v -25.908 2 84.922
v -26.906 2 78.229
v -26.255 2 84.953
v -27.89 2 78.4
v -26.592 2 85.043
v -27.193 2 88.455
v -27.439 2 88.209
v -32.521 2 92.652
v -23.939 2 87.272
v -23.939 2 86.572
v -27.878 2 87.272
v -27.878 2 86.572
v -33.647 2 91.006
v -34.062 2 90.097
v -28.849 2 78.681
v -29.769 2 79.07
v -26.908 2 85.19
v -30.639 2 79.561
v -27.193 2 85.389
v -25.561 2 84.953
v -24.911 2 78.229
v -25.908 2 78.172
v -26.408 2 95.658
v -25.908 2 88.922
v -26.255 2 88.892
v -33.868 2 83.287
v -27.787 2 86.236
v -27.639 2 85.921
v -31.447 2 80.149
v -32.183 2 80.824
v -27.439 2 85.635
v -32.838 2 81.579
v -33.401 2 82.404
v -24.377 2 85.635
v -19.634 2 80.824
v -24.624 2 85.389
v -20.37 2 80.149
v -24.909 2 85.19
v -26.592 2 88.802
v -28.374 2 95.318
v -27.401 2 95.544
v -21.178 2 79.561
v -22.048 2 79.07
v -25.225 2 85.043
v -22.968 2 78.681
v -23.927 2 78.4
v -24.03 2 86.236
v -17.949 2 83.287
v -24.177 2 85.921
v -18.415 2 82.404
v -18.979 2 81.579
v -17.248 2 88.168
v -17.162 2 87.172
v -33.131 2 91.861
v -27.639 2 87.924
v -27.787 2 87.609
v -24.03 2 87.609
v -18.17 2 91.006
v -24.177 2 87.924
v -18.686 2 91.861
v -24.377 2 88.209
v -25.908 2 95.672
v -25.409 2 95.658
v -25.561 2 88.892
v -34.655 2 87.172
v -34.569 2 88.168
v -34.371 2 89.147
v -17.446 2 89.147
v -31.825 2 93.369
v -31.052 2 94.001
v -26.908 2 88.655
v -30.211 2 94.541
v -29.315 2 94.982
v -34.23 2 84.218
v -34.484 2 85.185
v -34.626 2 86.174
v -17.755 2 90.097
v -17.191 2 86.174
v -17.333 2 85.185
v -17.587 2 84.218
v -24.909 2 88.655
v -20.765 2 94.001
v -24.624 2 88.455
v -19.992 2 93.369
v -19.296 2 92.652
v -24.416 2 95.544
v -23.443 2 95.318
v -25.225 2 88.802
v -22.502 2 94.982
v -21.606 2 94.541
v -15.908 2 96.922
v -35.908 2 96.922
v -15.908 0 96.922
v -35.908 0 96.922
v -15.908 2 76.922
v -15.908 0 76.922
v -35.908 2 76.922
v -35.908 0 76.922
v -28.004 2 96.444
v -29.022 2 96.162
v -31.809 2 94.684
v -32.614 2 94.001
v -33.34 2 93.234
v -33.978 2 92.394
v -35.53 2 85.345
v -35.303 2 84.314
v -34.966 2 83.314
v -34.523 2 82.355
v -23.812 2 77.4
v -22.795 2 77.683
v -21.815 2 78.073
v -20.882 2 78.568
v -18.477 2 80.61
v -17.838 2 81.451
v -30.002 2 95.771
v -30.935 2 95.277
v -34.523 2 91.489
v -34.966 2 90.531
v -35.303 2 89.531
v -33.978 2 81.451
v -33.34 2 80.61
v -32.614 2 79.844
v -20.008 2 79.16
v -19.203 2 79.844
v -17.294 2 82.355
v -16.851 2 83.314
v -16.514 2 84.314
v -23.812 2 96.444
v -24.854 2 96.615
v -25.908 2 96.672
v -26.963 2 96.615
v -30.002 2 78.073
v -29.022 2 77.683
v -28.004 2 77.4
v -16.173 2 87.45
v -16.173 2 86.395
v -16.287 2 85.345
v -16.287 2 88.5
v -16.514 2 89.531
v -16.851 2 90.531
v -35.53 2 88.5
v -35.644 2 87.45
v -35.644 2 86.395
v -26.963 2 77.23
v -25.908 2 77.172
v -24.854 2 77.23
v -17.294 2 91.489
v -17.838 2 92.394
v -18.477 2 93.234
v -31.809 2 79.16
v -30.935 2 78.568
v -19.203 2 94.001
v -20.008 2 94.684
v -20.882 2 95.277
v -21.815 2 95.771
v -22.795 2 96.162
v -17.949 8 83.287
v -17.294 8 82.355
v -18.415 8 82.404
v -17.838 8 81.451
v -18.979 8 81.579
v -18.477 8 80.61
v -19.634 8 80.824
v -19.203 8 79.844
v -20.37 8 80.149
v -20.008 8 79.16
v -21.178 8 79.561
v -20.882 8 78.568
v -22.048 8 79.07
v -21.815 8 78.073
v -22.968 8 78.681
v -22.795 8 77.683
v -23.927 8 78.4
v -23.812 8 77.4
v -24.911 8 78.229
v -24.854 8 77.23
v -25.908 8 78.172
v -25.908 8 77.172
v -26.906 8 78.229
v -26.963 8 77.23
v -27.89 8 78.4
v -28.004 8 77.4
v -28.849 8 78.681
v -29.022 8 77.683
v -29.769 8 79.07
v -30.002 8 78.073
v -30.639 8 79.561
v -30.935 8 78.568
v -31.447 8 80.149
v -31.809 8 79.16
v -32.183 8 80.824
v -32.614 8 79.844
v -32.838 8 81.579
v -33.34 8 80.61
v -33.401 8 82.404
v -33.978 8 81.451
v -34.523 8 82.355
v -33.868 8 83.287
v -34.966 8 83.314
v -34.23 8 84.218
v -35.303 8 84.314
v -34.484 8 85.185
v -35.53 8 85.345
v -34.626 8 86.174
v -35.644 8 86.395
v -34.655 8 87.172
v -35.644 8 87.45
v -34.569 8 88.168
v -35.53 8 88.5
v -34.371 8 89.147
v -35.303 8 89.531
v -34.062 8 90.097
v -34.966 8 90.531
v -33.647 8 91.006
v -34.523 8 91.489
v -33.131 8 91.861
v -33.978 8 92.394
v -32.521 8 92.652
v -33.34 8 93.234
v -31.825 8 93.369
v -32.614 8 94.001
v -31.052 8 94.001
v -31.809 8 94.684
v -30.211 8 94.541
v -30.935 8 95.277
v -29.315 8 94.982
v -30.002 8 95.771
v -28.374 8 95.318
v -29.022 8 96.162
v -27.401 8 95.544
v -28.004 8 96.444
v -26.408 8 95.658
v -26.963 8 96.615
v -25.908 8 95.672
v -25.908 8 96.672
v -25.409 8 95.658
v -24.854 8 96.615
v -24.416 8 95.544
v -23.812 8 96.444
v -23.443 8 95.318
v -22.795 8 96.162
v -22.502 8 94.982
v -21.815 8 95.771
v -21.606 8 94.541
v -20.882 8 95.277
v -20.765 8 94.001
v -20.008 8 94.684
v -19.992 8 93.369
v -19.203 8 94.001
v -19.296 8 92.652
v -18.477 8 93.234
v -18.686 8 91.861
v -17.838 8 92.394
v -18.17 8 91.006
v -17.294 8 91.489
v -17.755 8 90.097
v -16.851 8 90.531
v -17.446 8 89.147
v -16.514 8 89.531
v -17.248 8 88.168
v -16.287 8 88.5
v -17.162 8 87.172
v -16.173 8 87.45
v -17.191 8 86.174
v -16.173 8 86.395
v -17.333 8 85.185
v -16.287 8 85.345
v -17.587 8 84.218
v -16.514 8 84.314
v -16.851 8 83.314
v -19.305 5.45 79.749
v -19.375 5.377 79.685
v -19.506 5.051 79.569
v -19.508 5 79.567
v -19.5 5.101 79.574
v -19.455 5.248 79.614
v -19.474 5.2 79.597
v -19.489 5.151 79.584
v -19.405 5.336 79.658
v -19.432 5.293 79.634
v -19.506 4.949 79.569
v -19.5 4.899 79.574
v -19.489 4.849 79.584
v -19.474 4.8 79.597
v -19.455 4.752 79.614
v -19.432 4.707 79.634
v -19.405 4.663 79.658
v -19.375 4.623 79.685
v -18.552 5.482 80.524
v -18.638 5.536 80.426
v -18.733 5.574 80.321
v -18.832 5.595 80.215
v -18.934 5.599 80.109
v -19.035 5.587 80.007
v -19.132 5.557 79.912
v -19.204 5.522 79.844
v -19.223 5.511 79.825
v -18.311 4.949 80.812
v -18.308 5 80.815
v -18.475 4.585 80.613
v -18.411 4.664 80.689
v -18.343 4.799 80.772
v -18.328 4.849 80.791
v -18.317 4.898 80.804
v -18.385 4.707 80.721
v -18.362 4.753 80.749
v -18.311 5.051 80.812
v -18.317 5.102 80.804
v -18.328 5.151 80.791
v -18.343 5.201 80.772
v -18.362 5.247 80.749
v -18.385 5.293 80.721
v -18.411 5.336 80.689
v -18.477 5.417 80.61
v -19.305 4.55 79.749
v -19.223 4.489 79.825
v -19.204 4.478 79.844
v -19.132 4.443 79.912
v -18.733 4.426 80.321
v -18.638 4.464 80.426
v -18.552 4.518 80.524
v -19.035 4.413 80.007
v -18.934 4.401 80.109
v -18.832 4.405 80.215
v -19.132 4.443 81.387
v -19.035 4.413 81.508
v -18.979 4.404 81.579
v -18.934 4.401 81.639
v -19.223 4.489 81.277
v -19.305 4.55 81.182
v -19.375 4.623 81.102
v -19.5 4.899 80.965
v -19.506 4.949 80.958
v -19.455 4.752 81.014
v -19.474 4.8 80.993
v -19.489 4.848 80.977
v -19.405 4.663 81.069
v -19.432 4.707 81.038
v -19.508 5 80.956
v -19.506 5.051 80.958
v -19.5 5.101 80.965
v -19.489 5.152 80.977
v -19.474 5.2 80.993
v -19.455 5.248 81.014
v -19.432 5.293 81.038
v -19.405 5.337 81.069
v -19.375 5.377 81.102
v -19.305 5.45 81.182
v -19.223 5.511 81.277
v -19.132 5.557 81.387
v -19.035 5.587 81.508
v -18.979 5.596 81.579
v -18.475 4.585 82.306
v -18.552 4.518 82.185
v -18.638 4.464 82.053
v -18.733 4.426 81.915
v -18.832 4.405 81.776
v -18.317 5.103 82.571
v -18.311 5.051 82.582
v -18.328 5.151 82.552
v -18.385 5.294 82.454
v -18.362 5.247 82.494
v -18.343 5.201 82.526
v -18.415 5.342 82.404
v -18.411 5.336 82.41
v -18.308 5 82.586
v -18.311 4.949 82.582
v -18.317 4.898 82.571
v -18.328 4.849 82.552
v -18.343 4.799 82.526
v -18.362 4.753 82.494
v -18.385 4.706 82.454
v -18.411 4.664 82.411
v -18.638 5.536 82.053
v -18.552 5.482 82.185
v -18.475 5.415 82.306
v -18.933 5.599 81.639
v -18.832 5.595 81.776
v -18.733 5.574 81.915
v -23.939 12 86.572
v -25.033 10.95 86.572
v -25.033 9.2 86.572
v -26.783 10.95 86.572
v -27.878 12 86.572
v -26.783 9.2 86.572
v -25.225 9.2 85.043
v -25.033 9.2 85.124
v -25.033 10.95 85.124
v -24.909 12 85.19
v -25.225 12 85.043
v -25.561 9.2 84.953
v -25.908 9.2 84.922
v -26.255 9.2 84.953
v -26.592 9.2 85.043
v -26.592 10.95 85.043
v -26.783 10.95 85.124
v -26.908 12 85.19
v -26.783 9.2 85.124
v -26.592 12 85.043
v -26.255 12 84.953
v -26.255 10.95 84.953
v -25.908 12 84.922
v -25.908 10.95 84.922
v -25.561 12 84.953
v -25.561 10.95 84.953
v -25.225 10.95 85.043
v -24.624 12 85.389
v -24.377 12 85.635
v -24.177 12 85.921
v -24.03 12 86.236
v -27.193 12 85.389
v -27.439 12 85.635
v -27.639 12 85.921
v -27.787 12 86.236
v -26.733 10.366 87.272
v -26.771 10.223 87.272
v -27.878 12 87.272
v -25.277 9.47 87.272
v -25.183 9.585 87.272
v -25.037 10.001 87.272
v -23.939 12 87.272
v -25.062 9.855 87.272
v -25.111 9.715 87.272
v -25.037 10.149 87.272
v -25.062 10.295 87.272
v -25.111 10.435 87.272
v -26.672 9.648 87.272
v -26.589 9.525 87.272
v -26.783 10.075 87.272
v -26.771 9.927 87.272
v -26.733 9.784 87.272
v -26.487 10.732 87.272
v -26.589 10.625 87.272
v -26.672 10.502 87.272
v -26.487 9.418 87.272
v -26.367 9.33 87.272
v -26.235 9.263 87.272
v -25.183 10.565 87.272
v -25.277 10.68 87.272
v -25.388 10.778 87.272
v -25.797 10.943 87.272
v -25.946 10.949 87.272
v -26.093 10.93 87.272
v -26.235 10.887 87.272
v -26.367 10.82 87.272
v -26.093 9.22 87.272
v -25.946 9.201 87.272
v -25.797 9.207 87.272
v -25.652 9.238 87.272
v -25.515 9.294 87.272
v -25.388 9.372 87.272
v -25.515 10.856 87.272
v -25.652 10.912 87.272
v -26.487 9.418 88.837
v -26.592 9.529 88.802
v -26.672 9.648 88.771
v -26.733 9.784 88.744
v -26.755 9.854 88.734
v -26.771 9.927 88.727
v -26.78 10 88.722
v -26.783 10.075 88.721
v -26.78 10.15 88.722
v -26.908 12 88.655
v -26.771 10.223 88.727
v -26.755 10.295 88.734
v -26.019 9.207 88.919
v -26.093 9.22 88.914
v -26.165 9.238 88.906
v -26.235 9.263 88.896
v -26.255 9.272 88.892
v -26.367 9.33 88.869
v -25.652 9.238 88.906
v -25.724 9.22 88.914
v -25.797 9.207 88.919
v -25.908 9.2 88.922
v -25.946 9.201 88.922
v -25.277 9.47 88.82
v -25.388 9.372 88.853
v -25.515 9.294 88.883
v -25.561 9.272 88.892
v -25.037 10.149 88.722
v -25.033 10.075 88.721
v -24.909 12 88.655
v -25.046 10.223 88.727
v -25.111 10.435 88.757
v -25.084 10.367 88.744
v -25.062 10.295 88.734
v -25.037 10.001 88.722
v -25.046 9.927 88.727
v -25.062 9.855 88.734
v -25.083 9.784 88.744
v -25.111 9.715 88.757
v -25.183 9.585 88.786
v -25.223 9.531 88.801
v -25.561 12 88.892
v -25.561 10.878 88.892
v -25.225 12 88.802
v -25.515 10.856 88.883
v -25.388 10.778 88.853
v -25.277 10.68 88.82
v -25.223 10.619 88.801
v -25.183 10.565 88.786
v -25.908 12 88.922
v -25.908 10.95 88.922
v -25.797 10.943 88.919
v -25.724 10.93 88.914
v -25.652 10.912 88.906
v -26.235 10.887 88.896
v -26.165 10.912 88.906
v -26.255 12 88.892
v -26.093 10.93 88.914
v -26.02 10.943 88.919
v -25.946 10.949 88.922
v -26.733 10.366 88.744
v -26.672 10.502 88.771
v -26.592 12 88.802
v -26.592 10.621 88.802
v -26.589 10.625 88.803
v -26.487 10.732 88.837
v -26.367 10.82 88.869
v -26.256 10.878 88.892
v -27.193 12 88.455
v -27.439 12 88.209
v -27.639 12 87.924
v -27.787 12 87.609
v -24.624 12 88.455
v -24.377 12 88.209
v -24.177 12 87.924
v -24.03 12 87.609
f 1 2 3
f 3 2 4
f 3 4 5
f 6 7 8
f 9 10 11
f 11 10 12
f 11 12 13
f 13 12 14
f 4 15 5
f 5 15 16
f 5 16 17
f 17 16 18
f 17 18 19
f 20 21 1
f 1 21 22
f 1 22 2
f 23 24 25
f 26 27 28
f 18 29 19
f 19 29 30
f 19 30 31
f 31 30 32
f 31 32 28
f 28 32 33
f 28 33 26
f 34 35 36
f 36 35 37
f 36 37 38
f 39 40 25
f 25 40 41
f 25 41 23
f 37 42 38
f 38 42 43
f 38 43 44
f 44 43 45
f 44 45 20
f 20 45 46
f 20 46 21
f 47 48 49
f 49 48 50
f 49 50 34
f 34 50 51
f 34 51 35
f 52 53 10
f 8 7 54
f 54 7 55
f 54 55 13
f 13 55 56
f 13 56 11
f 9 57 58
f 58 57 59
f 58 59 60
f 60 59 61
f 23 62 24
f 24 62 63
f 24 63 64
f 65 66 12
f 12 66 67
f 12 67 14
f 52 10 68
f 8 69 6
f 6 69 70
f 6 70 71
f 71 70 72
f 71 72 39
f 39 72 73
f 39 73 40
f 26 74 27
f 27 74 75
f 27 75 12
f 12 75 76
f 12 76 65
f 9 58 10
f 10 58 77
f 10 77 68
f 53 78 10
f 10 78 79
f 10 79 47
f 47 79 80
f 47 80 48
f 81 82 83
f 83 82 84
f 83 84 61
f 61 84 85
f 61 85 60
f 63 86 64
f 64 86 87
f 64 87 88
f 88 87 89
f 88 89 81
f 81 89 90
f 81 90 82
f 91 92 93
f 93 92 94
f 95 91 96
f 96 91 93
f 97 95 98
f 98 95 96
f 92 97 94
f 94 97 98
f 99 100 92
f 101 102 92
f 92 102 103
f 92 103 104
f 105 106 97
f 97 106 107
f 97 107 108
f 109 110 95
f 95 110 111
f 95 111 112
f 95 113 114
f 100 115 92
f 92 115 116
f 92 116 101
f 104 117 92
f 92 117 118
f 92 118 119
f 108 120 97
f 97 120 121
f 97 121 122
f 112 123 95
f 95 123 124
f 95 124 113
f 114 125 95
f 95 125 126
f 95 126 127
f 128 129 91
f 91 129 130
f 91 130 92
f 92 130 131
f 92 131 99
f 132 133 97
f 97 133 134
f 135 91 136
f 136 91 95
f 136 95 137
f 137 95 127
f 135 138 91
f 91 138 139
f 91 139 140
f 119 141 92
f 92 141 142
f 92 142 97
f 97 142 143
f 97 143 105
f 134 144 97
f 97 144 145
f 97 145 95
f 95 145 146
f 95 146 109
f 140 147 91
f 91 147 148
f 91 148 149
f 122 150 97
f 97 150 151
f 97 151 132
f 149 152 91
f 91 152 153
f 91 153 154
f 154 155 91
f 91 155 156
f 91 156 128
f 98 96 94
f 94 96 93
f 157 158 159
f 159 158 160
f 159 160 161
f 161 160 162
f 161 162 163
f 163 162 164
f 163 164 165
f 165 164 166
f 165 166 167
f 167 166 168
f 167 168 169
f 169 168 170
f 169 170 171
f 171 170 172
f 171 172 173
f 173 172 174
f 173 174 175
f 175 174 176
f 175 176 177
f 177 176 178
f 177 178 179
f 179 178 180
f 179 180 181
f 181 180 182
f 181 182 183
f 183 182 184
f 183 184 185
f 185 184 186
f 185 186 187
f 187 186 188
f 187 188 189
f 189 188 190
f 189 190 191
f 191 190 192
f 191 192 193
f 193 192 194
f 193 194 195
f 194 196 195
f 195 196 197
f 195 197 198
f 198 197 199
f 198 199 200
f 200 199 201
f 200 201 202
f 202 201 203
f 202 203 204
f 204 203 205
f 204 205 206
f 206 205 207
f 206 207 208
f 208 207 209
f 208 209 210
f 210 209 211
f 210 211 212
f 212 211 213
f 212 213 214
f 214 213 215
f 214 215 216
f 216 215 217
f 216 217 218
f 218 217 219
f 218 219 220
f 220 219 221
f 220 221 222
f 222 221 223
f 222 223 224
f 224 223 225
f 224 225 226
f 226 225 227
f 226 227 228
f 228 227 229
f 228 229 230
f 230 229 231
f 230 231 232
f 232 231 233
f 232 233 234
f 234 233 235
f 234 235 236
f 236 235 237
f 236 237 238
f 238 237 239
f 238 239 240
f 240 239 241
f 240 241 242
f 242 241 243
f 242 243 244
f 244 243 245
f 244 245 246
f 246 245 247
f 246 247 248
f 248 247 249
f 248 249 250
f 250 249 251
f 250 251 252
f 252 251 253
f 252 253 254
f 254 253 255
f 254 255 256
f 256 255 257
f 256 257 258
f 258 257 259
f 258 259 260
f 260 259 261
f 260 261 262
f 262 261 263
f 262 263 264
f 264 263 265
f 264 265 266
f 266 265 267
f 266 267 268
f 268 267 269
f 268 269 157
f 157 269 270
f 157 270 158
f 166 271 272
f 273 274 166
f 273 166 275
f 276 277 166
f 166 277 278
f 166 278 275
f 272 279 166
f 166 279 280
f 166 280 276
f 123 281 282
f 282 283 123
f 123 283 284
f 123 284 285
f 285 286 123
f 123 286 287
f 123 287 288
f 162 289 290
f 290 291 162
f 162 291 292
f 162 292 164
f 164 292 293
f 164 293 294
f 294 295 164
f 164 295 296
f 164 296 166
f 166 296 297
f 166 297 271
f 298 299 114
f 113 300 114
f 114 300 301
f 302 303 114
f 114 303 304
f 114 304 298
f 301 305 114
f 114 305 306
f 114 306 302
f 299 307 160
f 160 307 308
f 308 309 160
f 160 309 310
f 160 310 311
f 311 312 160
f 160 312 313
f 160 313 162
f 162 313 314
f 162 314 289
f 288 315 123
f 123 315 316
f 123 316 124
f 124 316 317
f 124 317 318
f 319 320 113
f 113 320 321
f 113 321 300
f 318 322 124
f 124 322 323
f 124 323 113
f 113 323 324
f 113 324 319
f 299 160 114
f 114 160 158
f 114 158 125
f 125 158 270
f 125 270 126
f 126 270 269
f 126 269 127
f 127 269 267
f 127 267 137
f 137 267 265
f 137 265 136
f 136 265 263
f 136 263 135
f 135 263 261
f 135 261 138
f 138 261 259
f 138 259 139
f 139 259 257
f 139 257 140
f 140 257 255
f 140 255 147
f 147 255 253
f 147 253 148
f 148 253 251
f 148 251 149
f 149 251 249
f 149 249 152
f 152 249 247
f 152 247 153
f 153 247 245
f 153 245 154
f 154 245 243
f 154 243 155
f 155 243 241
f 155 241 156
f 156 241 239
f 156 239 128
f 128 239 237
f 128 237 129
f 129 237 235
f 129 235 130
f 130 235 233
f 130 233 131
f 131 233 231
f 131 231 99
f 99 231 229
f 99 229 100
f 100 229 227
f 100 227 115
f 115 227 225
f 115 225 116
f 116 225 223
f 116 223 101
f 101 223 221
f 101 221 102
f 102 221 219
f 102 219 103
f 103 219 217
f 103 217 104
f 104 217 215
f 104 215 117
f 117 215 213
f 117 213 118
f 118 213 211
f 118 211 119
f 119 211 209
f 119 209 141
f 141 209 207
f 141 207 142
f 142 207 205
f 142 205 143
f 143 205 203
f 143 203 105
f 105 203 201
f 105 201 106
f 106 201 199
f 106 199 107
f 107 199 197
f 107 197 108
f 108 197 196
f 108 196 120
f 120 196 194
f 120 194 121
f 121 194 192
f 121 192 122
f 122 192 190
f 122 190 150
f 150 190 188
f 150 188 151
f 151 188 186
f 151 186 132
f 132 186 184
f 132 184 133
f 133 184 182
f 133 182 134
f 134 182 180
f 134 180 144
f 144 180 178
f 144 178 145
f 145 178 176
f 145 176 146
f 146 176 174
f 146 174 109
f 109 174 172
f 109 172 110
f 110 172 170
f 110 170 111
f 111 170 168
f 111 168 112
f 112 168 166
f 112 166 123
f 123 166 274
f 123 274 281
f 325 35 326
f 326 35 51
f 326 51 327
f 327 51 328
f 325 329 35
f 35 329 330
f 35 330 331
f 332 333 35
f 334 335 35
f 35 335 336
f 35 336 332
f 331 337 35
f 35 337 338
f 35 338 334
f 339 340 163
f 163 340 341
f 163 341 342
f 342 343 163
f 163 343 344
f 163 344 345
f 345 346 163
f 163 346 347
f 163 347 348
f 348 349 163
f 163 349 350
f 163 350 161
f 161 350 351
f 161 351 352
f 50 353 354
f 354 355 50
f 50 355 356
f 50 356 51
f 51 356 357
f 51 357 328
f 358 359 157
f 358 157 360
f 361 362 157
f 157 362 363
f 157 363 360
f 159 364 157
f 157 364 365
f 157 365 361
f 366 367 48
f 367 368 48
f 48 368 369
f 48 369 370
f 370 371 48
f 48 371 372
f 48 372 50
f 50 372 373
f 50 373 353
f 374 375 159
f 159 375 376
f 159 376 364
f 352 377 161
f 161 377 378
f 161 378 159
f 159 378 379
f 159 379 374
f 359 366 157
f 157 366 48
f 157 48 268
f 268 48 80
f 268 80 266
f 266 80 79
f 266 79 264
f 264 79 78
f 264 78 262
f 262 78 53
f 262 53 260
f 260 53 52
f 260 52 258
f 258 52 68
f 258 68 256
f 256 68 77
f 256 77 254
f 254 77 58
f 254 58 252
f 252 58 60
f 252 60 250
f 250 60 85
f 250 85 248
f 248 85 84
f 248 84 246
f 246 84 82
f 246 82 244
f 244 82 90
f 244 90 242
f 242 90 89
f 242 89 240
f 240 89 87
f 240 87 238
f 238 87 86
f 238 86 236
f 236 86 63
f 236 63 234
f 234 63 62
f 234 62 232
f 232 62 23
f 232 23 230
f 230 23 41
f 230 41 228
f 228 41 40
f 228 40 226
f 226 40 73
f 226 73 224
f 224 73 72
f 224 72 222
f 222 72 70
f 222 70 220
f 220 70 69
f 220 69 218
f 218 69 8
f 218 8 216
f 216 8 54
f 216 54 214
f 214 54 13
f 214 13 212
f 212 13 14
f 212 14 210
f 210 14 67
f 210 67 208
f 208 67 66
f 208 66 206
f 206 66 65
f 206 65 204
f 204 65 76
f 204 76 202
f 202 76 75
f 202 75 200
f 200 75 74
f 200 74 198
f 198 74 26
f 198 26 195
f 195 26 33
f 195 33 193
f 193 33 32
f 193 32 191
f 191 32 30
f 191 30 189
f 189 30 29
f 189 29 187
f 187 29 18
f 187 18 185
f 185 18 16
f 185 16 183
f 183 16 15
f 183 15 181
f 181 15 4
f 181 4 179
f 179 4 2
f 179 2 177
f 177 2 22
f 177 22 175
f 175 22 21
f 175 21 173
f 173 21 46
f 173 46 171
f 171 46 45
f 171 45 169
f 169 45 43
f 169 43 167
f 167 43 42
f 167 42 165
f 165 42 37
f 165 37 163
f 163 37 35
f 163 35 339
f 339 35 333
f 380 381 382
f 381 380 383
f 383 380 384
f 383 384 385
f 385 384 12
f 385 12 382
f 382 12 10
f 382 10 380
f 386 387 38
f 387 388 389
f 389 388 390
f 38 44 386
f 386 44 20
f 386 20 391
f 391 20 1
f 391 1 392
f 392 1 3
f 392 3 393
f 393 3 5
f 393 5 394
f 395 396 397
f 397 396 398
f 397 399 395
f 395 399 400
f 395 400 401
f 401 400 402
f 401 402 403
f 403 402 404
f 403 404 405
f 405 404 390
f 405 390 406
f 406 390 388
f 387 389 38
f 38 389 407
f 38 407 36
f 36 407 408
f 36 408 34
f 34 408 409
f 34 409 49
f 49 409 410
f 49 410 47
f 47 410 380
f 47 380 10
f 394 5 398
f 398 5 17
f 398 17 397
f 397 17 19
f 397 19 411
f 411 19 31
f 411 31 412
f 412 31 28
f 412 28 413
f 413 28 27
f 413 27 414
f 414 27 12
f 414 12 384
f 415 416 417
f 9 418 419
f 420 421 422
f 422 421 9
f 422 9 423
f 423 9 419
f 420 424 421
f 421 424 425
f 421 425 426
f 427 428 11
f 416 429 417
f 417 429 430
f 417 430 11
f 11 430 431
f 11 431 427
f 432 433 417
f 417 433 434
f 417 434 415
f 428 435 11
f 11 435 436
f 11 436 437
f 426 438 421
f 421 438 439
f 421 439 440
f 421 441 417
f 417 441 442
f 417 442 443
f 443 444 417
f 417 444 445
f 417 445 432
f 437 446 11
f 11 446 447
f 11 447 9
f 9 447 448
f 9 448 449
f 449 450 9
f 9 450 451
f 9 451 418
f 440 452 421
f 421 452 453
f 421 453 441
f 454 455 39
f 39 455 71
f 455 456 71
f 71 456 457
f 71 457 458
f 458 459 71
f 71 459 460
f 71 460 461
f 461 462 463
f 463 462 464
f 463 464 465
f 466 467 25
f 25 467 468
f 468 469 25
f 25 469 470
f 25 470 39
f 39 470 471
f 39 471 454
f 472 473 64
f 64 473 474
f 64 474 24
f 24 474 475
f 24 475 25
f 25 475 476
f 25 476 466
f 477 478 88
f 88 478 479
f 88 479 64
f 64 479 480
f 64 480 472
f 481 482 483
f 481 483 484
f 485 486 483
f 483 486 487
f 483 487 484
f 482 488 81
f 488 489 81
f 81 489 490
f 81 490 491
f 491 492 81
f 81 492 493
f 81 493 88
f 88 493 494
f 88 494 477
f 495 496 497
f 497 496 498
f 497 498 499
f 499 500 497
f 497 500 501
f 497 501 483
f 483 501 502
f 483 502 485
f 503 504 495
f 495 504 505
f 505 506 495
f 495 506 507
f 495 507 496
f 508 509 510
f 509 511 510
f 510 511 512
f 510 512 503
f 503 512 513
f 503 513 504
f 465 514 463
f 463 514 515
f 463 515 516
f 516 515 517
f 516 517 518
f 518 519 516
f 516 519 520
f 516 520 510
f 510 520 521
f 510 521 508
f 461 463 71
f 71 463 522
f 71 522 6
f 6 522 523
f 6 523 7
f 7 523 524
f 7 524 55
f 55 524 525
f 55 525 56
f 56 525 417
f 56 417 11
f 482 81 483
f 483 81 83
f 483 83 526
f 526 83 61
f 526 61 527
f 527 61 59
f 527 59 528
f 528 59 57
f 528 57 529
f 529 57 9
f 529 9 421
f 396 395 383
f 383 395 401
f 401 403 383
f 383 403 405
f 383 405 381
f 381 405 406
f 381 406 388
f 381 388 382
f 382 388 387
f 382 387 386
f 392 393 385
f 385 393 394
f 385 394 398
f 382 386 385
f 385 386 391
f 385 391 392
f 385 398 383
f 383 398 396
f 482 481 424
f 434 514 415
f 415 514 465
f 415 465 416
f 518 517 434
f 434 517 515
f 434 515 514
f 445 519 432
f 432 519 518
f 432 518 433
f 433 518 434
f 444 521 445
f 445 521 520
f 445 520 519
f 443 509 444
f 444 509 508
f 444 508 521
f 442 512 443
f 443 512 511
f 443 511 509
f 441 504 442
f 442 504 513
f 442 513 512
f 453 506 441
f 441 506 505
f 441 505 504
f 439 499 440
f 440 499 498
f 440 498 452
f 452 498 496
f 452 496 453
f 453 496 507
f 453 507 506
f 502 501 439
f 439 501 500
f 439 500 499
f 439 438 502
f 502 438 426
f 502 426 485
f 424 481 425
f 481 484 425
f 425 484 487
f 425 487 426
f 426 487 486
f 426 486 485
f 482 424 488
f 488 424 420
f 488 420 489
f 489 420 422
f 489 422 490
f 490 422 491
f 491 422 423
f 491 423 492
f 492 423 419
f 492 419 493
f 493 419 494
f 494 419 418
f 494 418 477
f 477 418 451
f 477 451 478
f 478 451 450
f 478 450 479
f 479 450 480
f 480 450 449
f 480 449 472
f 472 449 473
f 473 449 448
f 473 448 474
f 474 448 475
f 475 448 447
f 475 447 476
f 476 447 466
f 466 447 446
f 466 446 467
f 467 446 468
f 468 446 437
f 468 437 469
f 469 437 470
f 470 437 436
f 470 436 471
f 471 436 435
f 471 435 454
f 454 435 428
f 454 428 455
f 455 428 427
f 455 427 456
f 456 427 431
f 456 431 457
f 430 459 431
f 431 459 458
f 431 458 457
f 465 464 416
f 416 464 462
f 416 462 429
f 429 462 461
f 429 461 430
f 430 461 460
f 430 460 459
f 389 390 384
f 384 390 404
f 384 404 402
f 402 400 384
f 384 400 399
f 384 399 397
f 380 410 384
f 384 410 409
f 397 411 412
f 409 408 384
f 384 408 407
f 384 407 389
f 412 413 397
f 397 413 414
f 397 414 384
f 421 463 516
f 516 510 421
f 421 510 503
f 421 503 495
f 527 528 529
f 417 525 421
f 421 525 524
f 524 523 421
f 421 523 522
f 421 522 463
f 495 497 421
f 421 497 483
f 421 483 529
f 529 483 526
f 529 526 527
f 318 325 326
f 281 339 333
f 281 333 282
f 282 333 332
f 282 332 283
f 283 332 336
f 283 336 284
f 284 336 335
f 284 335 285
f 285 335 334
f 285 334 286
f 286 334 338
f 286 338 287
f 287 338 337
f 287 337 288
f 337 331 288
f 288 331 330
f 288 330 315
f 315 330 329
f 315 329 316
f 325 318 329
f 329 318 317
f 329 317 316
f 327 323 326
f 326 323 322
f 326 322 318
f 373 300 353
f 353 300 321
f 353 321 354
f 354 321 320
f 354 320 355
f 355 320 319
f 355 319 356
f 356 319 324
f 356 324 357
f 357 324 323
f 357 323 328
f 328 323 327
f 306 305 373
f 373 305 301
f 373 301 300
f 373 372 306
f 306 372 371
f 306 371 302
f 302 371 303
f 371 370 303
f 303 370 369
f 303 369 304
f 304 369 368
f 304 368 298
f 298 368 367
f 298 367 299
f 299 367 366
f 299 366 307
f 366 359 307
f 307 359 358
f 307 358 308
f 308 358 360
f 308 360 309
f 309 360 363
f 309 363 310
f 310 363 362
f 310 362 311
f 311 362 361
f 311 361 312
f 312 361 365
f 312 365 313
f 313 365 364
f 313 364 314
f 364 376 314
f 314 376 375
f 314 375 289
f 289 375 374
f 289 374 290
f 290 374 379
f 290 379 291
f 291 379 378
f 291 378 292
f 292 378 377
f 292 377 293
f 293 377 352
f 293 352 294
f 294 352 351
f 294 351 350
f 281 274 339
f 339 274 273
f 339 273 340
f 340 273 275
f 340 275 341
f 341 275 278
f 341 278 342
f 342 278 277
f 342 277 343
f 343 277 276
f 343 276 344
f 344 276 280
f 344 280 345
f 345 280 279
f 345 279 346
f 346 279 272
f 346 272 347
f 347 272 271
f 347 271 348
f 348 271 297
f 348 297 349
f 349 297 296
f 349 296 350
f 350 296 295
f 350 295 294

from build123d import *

# Parameters (mm, degrees)
SKETCH1_W           = 20
SKETCH1_H           = 20
BOSS_EXTRUDE1_DEPTH = 2
SKETCH2_R           = 9.75
SKETCH2_R_2         = 8.75
BOSS_EXTRUDE2_DEPTH = 6
BOSS_EXTRUDE3_DEPTH = 9
CUT_EXTRUDE4_DEPTH  = 6
SKETCH6_R           = 0.875
CUT_EXTRUDE5_DEPTH  = 6
BOSS_EXTRUDE4_DEPTH = 1
SKETCH8_R           = 0.6
CUT_EXTRUDE6_DEPTH  = 12


with BuildPart() as part:
    # Sketch1 → Boss-Extrude1 (new body)
    with BuildSketch(Plane(origin=(0, 0, 0), x_dir=(1, 0, 0), z_dir=(0, 1, 0))):
        with Locations((-25.908439561, -86.922355933)):
            Rectangle(SKETCH1_W, SKETCH1_H)
    extrude(amount=BOSS_EXTRUDE1_DEPTH)

    # Sketch2 → Boss-Extrude2 (add)
    with BuildSketch(Plane(origin=(0, 2, 0), x_dir=(1, 0, 0), z_dir=(0, 1, 0))):
        with Locations((-25.908439561, -86.922355933)):
            Circle(SKETCH2_R)
        with Locations((-25.908439561, -86.922355933)):
            Circle(SKETCH2_R_2, mode=Mode.SUBTRACT)
    extrude(amount=BOSS_EXTRUDE2_DEPTH)

    # Sketch3 → Boss-Extrude3 (add)
    with BuildSketch(Plane(origin=(0, 2, 0), x_dir=(1, 0, 0), z_dir=(0, 1, 0))):
        with BuildLine():
            Line((-27.877576428, -86.572355933), (-23.939302694, -86.572355933))
            ThreePointArc((-23.939302694, -86.572355933), (-25.908439561, -84.922355933), (-27.877576428, -86.572355933))
        make_face()
        with BuildLine():
            Line((-23.939302694, -87.272355933), (-27.877576428, -87.272355933))
            ThreePointArc((-27.877576428, -87.272355933), (-25.908439561, -88.922355933), (-23.939302694, -87.272355933))
        make_face()
    extrude(amount=BOSS_EXTRUDE3_DEPTH)

    # Sketch4 → Cut-Extrude4 (cut)
    with BuildSketch(Plane.XY.offset(86.572355933)):
        Polygon((-26.783439561, 9.2), (-25.908439561, 9.2), (-25.033439561, 9.2), (-25.033439561, 10.95), (-26.783439561, 10.95), align=None)
    extrude(amount=-CUT_EXTRUDE4_DEPTH, mode=Mode.SUBTRACT)

    # Sketch6 → Cut-Extrude5 (cut)
    with BuildSketch(Plane(origin=(0, 0, 87.272355933), x_dir=(-1, 0, 0), z_dir=(0, 0, -1))):
        with Locations((25.908439561, 10.075)):
            Circle(SKETCH6_R)
    extrude(amount=-CUT_EXTRUDE5_DEPTH, mode=Mode.SUBTRACT)

    # Sketch7 → Boss-Extrude4 (add)
    with BuildSketch(Plane(origin=(0, 11, 0), x_dir=(1, 0, 0), z_dir=(0, 1, 0))):
        with BuildLine():
            Line((-27.877576428, -86.572355933), (-23.939302694, -86.572355933))
            ThreePointArc((-23.939302694, -86.572355933), (-25.908439561, -84.922355933), (-27.877576428, -86.572355933))
        make_face()
        with BuildLine():
            Line((-23.939302694, -87.272355933), (-27.877576428, -87.272355933))
            ThreePointArc((-27.877576428, -87.272355933), (-25.908439561, -88.922355933), (-23.939302694, -87.272355933))
        make_face()
    extrude(amount=BOSS_EXTRUDE4_DEPTH)

    # Sketch8 → Cut-Extrude6 (cut)
    with BuildSketch(Plane(origin=(0, 0, 76.922355933), x_dir=(-1, 0, 0), z_dir=(0, 0, -1))):
        with Locations((18.908439561, 5)):
            Circle(SKETCH8_R)
    extrude(amount=-CUT_EXTRUDE6_DEPTH, mode=Mode.SUBTRACT)


solid = part.part
